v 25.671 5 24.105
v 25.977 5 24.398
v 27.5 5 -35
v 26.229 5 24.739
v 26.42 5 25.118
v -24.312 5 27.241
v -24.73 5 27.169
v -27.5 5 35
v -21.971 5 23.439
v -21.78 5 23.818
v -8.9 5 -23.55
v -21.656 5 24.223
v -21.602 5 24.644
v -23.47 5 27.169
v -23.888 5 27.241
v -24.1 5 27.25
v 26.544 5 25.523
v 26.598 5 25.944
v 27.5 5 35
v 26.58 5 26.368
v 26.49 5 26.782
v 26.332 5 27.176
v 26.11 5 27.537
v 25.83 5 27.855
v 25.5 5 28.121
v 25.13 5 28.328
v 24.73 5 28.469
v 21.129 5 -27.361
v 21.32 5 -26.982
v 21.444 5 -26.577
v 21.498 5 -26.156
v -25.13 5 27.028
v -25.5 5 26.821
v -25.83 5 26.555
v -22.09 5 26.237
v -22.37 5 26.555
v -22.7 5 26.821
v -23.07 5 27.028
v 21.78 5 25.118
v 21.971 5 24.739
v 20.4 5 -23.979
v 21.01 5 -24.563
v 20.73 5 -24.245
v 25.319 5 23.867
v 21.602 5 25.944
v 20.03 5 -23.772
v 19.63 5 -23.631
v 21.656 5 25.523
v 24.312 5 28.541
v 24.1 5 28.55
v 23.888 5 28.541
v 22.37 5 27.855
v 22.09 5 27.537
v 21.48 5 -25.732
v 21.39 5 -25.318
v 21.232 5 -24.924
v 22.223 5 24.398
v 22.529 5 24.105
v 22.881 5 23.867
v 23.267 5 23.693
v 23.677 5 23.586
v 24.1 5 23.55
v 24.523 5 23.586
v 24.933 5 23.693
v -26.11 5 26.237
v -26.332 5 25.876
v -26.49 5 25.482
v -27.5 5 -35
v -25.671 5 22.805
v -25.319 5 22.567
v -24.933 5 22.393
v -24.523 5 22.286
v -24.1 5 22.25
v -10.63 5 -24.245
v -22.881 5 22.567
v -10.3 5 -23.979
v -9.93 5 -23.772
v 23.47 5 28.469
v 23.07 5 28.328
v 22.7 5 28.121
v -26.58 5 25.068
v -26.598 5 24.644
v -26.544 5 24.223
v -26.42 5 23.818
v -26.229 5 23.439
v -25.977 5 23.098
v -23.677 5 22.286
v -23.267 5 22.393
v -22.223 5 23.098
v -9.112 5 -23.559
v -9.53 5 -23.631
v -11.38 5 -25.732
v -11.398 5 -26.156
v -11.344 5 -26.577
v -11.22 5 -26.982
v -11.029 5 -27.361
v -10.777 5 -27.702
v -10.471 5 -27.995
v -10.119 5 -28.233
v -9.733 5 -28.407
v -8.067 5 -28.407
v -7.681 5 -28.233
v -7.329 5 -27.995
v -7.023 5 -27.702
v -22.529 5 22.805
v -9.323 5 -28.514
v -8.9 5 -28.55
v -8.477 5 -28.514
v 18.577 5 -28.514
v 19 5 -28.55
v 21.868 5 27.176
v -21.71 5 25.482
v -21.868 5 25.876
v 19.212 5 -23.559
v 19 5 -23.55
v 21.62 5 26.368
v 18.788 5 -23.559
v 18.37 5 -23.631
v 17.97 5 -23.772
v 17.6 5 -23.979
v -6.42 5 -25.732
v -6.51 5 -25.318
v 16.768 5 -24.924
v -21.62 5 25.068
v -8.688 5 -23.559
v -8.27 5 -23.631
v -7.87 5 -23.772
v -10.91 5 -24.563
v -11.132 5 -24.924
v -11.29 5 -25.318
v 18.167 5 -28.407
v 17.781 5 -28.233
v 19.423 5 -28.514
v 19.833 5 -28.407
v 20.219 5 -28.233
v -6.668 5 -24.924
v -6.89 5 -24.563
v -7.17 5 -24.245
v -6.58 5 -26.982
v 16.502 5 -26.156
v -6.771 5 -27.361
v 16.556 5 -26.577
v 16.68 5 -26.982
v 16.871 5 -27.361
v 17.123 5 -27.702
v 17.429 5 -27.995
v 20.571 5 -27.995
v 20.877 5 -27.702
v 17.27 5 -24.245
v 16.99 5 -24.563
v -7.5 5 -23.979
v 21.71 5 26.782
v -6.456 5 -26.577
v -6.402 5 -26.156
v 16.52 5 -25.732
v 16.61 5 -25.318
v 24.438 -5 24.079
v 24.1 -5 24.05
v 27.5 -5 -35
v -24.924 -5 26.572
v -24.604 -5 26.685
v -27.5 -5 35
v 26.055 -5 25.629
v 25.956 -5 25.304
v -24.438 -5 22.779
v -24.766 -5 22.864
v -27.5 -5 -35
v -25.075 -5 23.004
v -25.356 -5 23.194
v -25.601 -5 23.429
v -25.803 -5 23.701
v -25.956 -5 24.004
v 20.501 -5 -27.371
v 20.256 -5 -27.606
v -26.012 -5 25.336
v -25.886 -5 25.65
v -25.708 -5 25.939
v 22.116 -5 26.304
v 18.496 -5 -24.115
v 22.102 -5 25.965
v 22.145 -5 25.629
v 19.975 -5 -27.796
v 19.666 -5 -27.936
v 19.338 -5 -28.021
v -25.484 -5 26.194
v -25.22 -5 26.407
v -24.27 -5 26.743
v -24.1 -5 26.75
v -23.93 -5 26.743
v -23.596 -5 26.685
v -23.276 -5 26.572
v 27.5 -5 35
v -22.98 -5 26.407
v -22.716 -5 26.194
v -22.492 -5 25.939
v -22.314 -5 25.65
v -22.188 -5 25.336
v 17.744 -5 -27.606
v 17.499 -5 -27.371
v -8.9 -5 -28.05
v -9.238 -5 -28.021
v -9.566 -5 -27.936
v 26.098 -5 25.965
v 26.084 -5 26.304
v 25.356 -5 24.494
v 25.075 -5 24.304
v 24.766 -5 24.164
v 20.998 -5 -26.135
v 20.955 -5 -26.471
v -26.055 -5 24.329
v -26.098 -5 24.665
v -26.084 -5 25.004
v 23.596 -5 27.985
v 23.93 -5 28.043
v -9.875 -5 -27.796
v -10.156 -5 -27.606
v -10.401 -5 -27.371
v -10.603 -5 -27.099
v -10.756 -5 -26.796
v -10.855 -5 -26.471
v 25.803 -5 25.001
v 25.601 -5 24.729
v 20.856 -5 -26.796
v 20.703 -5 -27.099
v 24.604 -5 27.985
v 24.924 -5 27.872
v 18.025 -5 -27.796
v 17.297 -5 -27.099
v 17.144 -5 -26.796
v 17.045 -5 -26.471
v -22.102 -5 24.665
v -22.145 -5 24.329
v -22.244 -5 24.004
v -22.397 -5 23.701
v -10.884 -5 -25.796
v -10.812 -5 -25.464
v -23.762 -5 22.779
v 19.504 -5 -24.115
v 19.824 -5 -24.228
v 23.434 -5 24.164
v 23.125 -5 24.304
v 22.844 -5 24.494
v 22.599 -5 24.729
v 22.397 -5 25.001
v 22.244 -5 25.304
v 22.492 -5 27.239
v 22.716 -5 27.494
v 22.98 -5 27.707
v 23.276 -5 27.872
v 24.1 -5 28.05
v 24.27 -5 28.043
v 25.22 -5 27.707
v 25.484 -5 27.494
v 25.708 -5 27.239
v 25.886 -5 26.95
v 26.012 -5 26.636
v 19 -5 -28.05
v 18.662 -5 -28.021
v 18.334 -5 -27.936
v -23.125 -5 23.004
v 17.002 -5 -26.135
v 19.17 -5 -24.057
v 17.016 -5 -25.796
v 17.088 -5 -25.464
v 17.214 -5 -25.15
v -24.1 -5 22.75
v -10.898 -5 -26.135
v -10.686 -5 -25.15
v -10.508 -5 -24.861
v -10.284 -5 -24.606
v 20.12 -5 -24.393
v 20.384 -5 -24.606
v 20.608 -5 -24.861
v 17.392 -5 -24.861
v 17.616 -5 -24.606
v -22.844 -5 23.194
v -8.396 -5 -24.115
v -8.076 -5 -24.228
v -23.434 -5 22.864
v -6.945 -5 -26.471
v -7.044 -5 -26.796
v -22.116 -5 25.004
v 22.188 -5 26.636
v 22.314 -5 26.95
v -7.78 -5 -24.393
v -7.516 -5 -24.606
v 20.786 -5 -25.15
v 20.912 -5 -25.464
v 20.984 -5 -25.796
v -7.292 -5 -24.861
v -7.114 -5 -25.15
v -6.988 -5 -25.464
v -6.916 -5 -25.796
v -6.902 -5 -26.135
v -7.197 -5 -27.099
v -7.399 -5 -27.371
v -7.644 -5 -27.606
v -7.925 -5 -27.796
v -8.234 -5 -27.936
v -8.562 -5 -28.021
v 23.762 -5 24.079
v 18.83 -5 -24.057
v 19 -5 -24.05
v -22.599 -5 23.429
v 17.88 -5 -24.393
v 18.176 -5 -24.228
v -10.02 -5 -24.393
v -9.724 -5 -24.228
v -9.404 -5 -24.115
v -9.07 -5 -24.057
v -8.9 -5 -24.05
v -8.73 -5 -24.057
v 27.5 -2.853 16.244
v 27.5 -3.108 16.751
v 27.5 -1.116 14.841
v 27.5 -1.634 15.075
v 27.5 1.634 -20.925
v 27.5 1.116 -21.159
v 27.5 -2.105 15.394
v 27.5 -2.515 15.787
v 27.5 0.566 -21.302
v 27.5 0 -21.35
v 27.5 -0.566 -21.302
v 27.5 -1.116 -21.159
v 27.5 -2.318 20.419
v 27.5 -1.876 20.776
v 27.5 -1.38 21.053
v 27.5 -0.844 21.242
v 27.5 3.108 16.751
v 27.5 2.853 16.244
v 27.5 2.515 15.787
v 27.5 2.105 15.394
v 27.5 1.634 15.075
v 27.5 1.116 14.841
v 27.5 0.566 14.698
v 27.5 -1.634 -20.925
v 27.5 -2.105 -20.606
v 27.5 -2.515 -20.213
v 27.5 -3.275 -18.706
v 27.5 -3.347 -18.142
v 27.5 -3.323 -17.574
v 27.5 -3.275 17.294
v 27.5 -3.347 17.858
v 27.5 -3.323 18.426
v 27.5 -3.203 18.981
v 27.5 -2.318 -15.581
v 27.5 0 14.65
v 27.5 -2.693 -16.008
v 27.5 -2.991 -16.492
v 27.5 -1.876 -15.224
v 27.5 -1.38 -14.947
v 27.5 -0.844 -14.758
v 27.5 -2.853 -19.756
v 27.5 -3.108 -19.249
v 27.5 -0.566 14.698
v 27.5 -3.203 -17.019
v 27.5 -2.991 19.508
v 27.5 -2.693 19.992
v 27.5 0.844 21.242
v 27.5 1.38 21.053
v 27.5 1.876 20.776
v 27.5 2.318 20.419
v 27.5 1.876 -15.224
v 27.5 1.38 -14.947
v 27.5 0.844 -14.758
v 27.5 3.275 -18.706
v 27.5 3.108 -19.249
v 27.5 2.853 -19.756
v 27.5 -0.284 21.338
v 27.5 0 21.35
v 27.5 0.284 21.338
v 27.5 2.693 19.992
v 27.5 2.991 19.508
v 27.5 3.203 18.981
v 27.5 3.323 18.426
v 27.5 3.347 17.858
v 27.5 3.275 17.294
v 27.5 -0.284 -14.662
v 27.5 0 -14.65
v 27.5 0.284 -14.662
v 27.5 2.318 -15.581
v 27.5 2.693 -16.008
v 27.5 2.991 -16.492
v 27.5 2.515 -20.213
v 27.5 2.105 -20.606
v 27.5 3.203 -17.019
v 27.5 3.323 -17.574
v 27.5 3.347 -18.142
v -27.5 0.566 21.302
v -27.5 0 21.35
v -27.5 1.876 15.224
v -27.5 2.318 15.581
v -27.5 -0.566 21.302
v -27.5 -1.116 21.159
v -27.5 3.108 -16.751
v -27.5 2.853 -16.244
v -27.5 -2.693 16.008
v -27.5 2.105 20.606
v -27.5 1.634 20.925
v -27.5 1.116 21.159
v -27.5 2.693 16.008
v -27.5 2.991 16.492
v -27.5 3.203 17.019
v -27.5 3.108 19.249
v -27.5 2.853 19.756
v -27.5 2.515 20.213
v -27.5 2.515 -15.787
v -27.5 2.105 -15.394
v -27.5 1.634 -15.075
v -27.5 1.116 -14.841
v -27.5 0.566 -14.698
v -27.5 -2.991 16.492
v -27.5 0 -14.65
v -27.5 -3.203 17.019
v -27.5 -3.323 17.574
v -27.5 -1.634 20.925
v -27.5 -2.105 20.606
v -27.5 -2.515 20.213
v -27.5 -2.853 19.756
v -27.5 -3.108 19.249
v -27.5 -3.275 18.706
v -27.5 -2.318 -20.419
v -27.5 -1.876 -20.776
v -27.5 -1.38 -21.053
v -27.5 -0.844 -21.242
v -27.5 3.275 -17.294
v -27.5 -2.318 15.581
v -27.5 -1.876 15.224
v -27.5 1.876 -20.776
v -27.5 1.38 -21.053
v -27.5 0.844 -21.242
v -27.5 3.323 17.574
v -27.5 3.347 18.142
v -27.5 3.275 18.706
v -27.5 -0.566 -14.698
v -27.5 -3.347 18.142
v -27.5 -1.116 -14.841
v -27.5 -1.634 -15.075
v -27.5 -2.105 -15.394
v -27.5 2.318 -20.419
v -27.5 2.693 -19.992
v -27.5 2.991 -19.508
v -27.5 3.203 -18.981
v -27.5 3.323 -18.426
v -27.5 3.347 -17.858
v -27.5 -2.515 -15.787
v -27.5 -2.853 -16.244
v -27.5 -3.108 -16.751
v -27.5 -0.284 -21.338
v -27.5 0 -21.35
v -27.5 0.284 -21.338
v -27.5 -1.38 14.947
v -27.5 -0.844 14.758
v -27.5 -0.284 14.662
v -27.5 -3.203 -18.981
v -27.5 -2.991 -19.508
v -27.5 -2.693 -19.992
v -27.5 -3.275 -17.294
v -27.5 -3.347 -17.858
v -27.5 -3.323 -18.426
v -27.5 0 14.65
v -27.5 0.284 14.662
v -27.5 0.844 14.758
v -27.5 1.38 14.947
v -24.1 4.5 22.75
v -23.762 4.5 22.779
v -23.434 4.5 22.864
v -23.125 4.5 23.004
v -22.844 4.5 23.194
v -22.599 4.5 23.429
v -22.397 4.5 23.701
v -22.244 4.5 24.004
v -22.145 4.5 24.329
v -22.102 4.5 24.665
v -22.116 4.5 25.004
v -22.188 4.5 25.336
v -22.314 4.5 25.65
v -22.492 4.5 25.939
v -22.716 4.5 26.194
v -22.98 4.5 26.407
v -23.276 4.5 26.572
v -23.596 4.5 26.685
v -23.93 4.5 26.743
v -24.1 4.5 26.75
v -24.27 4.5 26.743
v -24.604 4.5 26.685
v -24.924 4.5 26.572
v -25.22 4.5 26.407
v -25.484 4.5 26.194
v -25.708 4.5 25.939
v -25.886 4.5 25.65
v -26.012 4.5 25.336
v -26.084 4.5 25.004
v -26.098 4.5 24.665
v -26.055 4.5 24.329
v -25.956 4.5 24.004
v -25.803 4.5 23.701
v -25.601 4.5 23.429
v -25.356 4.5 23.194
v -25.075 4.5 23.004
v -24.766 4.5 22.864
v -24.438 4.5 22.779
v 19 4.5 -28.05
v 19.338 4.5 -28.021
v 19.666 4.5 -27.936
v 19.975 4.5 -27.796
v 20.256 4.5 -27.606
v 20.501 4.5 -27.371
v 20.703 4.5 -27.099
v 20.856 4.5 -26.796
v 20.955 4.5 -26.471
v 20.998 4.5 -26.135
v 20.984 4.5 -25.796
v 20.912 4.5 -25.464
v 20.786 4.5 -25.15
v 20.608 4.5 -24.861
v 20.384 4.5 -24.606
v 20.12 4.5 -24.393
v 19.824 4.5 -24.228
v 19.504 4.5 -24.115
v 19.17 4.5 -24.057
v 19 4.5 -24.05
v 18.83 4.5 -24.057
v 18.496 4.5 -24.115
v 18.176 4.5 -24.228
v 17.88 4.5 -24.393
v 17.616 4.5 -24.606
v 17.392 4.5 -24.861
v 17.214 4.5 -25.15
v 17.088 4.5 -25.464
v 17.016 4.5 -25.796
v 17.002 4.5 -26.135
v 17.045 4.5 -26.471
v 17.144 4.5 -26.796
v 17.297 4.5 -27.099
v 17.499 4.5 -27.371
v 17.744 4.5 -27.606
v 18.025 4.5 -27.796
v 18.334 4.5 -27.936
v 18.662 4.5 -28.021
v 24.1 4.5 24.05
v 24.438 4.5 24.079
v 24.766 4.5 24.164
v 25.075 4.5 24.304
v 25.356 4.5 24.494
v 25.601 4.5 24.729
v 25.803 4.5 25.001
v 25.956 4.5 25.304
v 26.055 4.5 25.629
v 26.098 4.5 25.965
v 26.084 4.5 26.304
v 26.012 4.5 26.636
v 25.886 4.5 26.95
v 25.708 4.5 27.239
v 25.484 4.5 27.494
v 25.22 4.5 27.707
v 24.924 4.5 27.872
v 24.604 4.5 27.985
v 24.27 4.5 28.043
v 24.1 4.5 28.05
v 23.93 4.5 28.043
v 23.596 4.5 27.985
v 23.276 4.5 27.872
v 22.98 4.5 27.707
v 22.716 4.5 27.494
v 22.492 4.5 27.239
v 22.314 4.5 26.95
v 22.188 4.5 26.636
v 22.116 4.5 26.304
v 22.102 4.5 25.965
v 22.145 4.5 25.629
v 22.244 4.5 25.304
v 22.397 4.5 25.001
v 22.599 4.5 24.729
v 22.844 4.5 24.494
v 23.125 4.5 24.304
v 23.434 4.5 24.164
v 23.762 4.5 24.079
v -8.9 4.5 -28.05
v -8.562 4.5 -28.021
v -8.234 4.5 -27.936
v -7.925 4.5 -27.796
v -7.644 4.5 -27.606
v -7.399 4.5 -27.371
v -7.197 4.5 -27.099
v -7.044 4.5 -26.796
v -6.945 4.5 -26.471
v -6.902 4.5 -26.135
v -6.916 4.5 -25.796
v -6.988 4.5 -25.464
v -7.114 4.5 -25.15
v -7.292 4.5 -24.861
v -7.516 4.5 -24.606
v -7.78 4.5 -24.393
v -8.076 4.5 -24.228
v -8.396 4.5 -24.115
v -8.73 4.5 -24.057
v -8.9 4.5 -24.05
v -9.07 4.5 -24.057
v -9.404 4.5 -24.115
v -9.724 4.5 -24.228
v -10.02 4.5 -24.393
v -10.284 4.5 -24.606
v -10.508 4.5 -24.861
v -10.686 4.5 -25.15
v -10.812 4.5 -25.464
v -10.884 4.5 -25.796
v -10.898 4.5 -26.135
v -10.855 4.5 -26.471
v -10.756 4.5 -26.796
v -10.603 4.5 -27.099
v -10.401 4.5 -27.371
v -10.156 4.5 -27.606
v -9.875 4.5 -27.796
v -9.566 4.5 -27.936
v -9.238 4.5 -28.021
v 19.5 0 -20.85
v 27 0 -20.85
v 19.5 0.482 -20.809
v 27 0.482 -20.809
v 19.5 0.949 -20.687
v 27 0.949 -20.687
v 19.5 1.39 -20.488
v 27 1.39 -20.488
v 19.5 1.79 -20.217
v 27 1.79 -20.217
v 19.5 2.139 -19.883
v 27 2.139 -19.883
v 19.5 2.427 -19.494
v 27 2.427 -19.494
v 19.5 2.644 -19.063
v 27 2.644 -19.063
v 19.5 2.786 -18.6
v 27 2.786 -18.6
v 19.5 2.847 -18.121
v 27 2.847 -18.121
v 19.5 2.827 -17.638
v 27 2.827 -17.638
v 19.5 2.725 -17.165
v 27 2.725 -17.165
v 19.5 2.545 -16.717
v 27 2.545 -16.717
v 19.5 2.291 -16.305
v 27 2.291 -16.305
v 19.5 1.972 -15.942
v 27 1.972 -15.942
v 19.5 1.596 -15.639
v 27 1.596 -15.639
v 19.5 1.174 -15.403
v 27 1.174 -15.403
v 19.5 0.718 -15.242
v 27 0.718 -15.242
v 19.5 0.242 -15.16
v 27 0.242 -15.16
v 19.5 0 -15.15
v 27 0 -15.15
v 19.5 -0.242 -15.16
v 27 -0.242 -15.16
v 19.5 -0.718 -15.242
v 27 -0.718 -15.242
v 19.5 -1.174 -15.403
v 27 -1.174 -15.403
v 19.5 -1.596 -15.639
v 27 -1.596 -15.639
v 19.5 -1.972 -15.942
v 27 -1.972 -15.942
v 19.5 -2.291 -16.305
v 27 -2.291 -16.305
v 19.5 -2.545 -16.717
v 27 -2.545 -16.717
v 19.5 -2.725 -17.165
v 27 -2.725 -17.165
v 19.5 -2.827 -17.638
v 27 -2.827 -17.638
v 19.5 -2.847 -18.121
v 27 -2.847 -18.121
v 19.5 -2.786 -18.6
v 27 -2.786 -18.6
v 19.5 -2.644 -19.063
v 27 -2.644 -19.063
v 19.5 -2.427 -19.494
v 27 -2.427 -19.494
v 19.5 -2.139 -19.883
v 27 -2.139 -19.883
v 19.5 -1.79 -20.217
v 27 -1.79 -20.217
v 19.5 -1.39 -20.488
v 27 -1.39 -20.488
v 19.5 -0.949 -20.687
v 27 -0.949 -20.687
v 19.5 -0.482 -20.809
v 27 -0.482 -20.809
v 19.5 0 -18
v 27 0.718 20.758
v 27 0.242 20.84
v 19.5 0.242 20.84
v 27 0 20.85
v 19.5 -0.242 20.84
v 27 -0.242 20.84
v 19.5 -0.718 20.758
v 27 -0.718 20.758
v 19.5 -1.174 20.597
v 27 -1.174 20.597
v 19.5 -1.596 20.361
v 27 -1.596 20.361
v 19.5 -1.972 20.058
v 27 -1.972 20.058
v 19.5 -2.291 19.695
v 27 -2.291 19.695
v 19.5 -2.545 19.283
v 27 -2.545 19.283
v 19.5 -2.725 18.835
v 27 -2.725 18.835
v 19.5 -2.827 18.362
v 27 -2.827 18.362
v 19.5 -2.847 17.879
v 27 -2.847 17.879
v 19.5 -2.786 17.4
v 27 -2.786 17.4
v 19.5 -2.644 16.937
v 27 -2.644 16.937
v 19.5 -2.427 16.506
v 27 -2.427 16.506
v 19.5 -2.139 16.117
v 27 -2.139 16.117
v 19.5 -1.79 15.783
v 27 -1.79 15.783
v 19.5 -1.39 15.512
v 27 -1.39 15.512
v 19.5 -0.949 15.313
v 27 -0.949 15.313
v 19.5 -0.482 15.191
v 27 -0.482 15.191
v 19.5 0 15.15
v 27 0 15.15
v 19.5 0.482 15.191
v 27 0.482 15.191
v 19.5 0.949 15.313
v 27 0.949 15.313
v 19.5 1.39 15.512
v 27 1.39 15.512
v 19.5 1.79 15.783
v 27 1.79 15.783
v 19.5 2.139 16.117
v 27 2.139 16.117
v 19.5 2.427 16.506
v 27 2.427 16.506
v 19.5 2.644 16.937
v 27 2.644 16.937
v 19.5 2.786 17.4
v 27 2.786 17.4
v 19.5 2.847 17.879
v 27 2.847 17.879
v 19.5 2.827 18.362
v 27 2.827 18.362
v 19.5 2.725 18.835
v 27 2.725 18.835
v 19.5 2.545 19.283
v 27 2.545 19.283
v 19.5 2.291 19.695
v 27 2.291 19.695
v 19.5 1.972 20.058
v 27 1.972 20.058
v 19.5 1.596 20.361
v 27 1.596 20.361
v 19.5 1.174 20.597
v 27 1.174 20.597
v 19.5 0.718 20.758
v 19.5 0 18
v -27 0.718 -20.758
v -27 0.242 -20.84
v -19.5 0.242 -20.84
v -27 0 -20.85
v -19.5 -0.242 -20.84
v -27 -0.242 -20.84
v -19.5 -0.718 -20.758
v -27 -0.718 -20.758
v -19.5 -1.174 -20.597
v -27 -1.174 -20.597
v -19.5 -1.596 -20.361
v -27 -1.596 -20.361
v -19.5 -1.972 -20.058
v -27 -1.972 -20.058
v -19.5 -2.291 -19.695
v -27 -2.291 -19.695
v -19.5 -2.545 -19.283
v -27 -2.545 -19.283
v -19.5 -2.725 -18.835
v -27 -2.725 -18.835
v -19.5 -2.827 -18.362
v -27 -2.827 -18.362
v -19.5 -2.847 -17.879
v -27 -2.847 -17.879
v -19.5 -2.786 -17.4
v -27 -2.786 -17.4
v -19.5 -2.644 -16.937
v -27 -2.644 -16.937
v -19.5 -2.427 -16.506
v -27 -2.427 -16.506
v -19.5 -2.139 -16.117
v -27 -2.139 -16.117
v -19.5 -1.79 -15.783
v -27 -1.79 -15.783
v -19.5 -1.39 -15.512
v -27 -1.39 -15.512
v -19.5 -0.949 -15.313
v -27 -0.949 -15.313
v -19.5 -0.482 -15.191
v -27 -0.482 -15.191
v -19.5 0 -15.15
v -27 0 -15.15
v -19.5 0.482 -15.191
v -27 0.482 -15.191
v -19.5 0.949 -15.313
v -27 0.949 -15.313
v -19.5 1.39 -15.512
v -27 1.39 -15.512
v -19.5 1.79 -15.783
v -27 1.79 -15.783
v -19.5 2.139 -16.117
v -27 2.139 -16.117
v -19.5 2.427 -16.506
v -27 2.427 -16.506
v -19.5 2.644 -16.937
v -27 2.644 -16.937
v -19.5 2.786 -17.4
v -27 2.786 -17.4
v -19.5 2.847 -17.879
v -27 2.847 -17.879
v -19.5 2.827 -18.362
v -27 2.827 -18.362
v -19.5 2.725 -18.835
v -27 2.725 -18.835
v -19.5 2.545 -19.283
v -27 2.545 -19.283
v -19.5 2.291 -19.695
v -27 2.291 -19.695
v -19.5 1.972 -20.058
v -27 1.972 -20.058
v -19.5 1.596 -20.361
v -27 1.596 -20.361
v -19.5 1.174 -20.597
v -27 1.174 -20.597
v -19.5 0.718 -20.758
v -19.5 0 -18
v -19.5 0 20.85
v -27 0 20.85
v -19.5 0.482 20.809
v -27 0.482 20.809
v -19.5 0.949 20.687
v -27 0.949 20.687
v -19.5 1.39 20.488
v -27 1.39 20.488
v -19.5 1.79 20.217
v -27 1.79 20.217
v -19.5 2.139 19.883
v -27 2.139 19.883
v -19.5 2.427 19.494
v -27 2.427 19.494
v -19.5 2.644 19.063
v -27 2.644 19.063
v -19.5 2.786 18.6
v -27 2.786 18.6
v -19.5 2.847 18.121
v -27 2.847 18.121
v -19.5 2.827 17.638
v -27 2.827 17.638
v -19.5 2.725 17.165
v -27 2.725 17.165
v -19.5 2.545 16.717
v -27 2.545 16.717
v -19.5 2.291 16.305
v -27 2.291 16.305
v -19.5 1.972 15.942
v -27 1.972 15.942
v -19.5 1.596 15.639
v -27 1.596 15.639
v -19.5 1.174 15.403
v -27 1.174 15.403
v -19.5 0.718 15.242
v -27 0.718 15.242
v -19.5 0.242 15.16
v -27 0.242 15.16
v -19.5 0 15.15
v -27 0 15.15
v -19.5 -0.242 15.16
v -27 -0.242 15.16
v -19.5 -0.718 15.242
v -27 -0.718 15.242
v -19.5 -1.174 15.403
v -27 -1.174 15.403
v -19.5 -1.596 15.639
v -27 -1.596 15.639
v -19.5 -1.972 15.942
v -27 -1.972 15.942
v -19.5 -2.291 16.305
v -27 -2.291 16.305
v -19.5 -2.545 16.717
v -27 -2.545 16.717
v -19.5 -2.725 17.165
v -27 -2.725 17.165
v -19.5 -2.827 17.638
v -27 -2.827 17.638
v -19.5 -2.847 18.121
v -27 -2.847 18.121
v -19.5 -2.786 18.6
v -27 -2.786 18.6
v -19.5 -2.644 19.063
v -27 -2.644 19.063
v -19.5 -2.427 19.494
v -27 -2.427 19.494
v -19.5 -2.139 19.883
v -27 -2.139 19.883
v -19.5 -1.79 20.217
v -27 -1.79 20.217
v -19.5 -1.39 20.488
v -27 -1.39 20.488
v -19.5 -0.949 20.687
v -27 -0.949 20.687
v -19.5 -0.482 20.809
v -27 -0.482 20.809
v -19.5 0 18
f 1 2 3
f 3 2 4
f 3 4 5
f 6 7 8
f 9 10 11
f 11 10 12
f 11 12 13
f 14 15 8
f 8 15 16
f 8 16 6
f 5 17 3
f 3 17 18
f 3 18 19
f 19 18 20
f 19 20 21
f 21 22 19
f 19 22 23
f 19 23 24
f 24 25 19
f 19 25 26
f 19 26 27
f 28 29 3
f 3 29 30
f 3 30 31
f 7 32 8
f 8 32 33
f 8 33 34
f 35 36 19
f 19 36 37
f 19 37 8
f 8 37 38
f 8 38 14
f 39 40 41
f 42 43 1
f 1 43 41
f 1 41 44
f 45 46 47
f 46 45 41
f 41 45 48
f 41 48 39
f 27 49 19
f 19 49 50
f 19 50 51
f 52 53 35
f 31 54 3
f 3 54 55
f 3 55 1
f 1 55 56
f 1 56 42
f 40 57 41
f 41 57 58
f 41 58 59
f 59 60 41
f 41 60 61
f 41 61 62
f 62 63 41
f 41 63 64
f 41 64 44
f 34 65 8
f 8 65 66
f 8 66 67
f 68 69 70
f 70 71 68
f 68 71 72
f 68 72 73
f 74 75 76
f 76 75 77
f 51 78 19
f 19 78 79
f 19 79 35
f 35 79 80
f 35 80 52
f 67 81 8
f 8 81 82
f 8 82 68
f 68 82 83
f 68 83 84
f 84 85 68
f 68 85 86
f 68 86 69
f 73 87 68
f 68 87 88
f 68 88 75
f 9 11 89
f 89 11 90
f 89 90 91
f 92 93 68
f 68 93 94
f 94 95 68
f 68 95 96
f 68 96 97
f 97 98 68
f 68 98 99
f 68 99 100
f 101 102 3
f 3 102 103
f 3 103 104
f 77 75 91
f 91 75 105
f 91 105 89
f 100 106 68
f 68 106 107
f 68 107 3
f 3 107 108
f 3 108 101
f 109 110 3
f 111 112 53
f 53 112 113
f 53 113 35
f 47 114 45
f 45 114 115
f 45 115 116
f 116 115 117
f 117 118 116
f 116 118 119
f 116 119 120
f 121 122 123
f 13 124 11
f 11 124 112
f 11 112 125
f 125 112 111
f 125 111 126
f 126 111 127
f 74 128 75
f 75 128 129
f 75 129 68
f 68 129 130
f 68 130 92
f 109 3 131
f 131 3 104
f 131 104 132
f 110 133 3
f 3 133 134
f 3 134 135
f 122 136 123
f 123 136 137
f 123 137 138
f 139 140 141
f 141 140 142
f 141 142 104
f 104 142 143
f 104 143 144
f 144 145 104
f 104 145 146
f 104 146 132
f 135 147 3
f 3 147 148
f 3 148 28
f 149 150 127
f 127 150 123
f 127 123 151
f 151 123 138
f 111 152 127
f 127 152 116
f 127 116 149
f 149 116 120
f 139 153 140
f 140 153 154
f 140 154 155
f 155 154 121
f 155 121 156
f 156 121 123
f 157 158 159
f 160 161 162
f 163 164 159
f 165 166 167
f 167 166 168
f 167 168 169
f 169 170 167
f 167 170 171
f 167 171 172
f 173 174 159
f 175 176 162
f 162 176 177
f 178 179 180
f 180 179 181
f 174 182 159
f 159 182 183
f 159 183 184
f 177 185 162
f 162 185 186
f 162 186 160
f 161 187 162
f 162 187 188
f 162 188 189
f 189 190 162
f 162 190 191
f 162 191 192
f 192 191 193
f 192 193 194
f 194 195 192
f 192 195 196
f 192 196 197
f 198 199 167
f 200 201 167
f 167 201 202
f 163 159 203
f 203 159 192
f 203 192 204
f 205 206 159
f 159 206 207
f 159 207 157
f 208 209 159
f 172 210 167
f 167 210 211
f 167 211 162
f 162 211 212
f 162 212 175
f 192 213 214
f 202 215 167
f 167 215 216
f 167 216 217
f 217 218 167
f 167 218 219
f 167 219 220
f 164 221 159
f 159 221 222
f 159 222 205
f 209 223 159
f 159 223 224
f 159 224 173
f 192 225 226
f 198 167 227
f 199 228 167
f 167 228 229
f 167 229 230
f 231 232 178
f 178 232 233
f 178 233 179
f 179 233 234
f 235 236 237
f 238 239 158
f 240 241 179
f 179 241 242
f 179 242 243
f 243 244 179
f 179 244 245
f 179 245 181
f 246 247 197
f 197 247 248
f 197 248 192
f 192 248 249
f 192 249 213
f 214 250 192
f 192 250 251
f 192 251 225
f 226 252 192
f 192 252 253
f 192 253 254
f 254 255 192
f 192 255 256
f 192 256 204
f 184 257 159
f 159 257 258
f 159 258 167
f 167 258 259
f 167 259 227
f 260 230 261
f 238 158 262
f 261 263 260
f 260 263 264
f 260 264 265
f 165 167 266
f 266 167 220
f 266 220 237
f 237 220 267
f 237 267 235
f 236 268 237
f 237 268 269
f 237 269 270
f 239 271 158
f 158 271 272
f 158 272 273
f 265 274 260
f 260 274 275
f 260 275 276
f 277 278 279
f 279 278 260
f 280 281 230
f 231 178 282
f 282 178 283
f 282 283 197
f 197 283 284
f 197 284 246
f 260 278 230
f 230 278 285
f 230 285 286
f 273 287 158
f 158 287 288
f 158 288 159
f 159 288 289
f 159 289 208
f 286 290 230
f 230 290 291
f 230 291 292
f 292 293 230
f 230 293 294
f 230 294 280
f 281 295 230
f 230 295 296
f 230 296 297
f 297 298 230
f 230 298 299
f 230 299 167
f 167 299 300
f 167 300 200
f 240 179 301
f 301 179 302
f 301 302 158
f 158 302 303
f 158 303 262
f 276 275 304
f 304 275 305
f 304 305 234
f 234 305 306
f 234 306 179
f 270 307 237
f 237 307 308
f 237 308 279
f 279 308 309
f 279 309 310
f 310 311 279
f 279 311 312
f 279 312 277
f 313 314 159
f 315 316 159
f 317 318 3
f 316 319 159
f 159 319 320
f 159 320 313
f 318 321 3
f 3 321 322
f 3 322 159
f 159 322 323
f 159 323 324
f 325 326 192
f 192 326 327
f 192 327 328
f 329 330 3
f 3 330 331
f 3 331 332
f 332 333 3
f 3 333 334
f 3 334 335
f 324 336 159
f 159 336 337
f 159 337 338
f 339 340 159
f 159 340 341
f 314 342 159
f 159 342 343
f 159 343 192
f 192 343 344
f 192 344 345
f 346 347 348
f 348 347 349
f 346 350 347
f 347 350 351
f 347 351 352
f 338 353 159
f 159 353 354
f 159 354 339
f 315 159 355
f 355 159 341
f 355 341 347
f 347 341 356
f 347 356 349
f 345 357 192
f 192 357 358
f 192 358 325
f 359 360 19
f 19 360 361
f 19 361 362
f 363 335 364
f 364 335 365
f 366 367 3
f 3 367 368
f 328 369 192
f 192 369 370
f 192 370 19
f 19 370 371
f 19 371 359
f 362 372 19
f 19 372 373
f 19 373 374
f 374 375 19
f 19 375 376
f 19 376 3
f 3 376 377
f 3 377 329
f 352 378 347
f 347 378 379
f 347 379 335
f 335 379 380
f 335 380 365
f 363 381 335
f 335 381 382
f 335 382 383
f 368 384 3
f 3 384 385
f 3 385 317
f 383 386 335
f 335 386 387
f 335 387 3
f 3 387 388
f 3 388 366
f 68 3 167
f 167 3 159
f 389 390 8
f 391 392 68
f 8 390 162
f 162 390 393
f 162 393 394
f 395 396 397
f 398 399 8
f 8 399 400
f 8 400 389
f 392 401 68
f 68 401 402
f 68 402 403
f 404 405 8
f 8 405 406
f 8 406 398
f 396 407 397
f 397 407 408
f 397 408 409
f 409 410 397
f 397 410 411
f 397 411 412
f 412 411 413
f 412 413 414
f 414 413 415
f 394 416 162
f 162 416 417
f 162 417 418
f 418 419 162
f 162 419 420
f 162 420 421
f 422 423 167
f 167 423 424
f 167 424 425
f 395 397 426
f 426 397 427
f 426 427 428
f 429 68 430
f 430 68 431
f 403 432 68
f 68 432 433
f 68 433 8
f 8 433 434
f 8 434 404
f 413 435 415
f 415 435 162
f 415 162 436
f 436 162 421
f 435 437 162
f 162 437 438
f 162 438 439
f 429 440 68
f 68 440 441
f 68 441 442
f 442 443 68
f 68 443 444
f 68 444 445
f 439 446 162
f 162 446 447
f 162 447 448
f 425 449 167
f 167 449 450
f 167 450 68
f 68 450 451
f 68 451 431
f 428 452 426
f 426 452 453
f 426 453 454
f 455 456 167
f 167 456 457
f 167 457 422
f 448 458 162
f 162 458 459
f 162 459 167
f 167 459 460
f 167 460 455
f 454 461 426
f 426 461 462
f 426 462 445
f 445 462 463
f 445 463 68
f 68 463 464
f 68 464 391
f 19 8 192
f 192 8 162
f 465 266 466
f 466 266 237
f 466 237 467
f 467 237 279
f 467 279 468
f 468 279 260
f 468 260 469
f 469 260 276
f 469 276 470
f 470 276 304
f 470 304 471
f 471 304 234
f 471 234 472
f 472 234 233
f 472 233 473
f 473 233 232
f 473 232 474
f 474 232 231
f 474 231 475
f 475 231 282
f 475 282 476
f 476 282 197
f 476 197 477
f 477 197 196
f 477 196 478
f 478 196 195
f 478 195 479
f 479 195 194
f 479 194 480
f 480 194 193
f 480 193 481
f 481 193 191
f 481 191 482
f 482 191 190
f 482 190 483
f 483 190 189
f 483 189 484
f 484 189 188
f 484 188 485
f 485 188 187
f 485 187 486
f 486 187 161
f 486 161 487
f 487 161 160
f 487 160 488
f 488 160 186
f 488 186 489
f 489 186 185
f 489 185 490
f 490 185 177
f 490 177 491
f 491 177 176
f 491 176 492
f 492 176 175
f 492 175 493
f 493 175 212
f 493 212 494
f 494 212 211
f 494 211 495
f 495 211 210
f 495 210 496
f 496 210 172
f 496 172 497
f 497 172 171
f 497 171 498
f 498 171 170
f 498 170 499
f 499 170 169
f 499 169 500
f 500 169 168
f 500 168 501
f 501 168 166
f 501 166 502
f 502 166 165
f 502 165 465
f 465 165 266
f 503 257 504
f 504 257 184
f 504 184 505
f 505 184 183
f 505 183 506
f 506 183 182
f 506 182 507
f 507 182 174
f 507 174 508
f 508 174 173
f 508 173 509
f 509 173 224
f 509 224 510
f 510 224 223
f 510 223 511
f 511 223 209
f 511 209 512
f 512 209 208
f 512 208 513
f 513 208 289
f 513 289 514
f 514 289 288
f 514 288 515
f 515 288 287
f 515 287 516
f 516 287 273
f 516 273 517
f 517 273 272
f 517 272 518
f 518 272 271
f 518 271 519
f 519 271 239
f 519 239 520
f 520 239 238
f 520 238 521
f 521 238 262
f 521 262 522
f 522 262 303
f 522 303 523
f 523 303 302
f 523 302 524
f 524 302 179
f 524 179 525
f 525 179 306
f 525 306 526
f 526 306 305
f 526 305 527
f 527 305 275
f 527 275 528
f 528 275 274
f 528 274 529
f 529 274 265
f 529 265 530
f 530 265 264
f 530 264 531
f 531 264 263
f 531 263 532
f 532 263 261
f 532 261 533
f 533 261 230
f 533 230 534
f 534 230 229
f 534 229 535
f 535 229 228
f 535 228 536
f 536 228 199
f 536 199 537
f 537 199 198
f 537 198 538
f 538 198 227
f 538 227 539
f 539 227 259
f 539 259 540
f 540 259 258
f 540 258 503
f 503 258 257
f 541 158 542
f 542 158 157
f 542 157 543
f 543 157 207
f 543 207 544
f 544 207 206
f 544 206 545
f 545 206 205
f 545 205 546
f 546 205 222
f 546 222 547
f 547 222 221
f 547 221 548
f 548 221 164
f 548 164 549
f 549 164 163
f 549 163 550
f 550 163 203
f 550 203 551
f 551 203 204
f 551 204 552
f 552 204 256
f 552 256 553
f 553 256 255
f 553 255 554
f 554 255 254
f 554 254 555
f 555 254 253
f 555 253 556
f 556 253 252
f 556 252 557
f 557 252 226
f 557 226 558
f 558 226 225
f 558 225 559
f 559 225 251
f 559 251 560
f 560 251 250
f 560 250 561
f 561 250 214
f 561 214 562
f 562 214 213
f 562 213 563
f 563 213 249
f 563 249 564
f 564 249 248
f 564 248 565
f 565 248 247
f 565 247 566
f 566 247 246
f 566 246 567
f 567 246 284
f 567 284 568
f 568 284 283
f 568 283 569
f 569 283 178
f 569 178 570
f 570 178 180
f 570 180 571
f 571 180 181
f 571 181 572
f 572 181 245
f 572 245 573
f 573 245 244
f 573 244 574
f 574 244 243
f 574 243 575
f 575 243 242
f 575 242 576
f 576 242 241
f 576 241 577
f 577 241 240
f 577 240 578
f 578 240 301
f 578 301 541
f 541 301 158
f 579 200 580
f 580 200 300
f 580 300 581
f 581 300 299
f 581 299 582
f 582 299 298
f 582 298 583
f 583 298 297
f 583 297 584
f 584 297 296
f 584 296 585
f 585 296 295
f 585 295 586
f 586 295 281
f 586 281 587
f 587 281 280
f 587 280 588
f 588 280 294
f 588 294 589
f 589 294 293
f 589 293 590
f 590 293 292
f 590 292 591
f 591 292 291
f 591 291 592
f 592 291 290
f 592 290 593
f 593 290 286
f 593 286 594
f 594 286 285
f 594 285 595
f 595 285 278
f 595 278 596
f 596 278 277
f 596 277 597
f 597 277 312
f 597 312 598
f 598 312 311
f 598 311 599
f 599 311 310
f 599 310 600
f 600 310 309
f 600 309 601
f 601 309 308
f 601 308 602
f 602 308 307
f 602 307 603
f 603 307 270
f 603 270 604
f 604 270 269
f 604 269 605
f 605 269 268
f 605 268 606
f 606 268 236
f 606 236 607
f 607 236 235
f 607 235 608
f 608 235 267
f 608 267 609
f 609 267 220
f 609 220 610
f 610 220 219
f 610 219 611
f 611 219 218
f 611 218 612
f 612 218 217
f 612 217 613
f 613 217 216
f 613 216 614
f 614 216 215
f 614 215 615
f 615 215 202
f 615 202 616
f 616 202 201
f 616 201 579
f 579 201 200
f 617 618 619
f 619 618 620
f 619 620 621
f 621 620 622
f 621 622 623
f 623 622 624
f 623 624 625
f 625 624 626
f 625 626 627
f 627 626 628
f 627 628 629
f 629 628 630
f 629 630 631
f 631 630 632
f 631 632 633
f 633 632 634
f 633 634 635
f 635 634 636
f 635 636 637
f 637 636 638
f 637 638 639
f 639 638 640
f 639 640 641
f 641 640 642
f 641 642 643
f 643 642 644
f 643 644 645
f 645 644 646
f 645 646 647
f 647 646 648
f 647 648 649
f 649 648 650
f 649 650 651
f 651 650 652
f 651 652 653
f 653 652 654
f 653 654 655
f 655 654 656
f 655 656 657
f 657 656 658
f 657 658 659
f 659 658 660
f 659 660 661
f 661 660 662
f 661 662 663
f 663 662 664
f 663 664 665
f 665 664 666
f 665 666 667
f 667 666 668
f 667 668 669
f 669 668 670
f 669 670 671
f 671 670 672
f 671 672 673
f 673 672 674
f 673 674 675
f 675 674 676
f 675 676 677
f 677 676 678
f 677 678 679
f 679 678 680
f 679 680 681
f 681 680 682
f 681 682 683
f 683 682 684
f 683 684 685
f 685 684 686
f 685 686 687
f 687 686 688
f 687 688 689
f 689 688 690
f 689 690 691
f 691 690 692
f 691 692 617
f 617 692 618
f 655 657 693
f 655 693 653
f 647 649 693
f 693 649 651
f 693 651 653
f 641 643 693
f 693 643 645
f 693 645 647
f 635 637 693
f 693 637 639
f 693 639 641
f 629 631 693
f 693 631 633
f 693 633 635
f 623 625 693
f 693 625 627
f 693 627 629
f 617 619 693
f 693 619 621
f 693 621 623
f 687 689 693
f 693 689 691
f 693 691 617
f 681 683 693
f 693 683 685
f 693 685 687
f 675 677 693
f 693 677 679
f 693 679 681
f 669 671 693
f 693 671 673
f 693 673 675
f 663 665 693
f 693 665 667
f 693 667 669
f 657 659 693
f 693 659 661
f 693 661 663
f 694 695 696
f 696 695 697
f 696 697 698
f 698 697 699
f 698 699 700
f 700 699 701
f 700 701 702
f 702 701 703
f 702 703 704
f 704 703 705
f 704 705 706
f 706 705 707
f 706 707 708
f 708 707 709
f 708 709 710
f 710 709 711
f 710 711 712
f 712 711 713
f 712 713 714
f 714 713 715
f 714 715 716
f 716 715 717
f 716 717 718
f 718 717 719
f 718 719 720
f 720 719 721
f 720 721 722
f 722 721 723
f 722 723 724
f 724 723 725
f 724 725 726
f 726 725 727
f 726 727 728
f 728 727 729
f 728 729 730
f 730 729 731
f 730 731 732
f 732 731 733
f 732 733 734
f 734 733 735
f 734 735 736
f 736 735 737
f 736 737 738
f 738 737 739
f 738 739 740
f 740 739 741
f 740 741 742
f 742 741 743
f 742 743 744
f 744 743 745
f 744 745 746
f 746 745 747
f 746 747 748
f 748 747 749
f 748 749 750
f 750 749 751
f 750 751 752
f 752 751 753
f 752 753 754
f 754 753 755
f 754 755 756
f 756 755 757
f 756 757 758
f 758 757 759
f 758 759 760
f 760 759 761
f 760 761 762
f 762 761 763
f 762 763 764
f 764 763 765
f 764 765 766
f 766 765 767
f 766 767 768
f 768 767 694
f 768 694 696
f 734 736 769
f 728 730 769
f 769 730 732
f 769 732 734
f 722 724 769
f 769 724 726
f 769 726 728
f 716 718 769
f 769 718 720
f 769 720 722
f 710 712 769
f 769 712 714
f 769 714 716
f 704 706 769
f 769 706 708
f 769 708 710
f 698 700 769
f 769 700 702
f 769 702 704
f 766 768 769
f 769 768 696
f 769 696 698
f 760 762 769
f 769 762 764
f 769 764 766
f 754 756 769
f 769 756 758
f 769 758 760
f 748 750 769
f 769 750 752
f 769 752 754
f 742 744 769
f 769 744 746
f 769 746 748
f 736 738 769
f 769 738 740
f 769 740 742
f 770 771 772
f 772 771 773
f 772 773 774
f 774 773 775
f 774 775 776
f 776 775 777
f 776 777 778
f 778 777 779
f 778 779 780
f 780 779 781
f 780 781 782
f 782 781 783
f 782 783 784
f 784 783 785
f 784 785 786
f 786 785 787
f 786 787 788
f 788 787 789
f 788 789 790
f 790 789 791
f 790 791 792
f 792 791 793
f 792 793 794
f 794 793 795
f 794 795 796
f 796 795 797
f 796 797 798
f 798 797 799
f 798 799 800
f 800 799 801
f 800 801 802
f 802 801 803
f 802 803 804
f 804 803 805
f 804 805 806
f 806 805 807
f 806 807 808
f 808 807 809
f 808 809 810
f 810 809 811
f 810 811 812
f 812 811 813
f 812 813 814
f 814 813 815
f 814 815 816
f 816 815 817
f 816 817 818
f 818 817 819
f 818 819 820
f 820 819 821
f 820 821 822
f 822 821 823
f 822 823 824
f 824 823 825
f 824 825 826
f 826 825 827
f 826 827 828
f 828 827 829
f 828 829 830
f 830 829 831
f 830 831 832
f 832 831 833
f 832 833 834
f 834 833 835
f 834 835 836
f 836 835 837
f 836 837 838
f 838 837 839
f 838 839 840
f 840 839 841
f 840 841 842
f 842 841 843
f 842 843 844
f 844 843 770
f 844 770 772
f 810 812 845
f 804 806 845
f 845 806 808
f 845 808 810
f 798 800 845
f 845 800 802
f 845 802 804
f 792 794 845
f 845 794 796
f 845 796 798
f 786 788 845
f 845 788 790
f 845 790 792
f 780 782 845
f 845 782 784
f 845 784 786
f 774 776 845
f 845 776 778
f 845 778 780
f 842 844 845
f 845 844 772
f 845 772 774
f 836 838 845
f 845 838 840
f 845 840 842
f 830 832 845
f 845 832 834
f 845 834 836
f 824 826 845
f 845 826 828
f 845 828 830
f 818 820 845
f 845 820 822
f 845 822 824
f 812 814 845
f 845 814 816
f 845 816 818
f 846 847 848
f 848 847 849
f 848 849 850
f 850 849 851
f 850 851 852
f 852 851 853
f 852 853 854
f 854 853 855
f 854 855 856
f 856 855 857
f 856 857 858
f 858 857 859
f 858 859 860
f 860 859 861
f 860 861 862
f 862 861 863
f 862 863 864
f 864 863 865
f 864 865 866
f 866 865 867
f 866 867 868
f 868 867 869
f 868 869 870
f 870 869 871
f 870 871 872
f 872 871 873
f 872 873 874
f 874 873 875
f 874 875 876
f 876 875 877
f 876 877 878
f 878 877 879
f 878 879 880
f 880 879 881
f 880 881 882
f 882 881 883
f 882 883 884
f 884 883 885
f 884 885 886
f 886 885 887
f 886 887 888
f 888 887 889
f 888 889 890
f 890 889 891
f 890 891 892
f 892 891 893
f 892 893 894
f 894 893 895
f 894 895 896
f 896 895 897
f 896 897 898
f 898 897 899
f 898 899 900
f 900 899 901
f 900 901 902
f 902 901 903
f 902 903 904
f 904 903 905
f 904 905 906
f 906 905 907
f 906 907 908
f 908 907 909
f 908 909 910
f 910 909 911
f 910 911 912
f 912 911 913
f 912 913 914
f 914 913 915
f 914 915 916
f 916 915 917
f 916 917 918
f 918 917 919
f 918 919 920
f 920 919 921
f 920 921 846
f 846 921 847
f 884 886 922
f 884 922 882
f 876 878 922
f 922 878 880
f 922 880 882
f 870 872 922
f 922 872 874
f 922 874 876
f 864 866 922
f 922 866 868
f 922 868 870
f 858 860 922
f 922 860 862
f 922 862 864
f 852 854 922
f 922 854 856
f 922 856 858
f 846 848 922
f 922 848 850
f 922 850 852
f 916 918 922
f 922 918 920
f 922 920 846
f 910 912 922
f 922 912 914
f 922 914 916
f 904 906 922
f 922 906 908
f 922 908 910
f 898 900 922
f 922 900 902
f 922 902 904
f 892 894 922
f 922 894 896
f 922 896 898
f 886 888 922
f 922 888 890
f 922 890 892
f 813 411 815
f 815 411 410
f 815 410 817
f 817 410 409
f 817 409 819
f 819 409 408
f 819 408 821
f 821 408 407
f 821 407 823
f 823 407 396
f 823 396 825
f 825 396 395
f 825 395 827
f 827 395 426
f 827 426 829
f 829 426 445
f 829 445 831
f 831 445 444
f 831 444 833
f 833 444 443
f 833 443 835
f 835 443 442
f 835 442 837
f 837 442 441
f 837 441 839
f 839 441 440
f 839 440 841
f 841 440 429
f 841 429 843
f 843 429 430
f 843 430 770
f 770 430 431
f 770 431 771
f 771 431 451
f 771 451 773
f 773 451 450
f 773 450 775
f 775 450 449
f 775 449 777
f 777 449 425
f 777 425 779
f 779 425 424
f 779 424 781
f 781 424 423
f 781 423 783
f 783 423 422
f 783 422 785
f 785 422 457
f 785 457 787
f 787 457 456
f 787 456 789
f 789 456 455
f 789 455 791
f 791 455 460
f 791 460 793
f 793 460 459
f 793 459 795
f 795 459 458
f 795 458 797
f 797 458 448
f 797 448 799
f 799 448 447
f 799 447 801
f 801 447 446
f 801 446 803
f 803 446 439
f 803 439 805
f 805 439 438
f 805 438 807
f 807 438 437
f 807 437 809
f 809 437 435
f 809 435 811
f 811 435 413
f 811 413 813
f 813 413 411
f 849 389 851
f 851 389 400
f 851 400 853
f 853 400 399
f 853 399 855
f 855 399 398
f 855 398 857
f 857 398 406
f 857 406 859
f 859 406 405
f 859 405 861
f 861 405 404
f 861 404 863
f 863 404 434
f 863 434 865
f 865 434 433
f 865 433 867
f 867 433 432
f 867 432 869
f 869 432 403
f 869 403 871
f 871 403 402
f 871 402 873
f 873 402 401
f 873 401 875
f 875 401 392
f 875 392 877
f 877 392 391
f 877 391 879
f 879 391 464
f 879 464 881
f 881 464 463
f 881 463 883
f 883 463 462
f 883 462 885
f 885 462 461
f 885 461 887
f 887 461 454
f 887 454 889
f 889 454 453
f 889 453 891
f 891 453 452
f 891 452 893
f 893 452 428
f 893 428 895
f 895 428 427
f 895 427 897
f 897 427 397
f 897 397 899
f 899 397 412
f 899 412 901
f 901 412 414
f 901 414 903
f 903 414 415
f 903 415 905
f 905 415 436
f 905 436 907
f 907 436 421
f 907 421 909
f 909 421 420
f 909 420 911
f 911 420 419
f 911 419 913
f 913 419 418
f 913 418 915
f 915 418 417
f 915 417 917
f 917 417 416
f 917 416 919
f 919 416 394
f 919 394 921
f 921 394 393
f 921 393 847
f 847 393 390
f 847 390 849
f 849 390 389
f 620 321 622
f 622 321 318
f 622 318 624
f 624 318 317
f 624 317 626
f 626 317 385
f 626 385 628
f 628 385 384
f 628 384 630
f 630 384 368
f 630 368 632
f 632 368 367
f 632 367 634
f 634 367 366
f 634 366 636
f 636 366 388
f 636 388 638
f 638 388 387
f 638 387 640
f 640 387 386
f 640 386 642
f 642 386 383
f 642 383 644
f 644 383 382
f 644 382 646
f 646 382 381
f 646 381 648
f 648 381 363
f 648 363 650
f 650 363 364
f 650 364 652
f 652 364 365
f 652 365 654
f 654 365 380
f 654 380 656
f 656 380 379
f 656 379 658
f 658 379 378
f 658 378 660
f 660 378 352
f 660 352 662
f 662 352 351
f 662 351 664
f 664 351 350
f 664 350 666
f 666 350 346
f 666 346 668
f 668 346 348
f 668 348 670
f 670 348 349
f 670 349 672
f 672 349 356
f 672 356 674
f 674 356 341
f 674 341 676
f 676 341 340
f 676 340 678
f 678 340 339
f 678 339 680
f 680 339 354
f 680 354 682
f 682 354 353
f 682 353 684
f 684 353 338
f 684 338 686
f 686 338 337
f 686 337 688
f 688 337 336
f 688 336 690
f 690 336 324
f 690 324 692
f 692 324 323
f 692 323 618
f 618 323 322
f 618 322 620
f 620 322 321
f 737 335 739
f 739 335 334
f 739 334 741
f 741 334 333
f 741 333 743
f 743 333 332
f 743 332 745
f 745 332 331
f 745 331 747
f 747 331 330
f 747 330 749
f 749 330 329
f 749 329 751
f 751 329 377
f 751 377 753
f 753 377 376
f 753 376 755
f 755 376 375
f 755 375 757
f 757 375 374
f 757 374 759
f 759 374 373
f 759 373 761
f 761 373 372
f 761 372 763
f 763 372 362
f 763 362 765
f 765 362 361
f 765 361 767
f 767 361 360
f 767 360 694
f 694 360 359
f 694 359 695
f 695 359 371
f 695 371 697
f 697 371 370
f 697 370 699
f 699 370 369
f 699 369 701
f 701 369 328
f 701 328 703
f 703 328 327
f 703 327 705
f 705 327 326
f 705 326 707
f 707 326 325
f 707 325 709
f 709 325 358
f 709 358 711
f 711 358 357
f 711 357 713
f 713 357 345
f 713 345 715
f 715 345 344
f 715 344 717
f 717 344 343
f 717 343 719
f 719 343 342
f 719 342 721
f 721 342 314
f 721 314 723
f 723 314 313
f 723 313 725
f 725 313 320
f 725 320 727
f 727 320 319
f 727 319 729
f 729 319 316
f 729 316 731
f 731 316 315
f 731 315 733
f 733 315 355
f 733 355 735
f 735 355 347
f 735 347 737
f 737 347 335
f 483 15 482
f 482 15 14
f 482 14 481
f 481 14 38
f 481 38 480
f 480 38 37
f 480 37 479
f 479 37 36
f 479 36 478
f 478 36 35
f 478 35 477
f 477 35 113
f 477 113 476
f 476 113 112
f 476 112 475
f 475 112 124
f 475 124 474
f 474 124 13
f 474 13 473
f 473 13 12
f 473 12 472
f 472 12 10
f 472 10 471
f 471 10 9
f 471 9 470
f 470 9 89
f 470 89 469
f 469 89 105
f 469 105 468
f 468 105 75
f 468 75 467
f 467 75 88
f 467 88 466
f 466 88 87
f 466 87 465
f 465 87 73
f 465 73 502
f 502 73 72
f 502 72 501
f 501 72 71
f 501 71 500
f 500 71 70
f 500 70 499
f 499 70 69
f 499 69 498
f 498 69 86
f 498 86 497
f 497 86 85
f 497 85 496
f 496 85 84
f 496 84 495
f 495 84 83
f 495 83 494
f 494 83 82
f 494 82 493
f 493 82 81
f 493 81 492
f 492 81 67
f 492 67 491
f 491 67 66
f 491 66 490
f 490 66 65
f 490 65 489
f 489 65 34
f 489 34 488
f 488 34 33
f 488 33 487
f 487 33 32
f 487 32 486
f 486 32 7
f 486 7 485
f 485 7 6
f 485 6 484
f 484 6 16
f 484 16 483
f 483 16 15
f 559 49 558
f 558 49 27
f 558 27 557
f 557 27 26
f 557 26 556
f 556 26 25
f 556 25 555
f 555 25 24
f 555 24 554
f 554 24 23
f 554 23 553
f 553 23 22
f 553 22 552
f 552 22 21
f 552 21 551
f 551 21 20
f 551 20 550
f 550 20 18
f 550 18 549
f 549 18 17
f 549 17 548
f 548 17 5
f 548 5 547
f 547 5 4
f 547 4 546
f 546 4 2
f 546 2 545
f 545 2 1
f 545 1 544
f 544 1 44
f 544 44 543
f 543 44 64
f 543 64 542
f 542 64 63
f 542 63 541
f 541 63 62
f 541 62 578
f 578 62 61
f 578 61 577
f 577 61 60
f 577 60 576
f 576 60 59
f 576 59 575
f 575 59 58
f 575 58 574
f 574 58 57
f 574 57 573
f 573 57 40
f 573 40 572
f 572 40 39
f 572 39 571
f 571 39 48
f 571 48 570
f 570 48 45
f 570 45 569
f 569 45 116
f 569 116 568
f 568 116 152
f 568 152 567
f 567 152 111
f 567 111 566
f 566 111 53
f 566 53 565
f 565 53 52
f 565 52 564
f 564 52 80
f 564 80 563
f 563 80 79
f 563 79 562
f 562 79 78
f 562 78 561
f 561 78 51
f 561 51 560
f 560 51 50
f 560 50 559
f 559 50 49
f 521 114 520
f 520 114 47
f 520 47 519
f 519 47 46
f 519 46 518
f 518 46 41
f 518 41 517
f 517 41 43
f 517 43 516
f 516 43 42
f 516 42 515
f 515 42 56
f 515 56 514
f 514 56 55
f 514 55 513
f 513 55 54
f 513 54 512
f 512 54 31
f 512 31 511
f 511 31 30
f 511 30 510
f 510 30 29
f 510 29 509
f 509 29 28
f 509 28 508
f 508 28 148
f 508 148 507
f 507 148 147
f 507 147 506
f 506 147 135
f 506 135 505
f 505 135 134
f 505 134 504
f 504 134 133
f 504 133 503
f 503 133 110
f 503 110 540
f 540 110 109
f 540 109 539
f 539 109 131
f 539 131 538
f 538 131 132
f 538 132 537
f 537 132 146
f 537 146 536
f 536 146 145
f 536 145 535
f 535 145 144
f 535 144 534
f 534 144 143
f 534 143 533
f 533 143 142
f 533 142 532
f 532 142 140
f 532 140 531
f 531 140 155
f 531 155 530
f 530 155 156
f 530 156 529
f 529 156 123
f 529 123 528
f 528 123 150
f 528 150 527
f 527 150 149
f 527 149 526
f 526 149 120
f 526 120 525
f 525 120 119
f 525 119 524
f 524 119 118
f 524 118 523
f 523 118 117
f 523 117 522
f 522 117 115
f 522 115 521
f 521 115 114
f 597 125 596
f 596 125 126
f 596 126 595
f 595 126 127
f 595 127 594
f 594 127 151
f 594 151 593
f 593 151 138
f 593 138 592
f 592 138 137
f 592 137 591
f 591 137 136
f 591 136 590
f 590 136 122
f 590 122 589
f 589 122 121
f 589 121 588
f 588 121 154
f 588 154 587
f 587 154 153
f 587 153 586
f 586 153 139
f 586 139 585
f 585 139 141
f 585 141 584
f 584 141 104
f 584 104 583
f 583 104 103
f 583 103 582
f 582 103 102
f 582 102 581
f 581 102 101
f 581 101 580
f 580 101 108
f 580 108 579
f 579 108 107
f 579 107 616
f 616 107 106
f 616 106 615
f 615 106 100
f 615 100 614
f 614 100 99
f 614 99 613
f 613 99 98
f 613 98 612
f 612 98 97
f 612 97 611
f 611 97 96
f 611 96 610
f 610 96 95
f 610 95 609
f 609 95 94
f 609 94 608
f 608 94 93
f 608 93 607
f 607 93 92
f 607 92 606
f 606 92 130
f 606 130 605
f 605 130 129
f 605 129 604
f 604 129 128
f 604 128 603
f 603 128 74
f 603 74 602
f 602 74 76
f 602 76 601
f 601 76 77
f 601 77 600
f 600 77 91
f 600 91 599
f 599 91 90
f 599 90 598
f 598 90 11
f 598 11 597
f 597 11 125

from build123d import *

# Parameters (mm, degrees)
SKETCH1_W           = 55
SKETCH1_H           = 70
SKETCH1_R           = 2
BOSS_EXTRUDE1_DEPTH = 5
SKETCH2_R           = 2.85
CUT_EXTRUDE1_DEPTH  = 8
CHAMFER1_SIZE       = 0.5


with BuildPart() as part:
    # Sketch1 → Boss-Extrude1 (new, symmetric)
    with BuildSketch(Plane(origin=(0, 0, 0), x_dir=(1, 0, 0), z_dir=(0, 1, 0))):
        Rectangle(SKETCH1_W, SKETCH1_H)
        with Locations(Location((24.1, -26.05, 0), (0, 0, 270))):
            Circle(SKETCH1_R, mode=Mode.SUBTRACT)
        with Locations(Location((-24.1, -24.75, 0), (0, 0, 270))):
            Circle(SKETCH1_R, mode=Mode.SUBTRACT)
        with Locations(Location((19, 26.05, 0), (0, 0, 270))):
            Circle(SKETCH1_R, mode=Mode.SUBTRACT)
        with Locations(Location((-8.9, 26.05, 0), (0, 0, 270))):
            Circle(SKETCH1_R, mode=Mode.SUBTRACT)
    extrude(amount=BOSS_EXTRUDE1_DEPTH, both=True)

    # Sketch2 → Cut-Extrude1 (cut)
    with BuildSketch(Plane(origin=(27.5, 0, 0), x_dir=(0, 0, -1), z_dir=(1, 0, 0))):
        with Locations((-18, 0)):
            Circle(SKETCH2_R)
        with Locations(Location((18, 0, 0), (0, 0, 180))):
            Circle(SKETCH2_R)
    cut_extrude1 = extrude(amount=-CUT_EXTRUDE1_DEPTH, mode=Mode.SUBTRACT)

    # Mirror1: Cut-Extrude1 across plane
    add(cut_extrude1.mirror(Plane(origin=(0, 0, 0), x_dir=(0, 0, 1), z_dir=(1, 0, 0))), mode=Mode.SUBTRACT)

    # Chamfer1
    chamfer1_edges = [part.edges().sort_by_distance(p)[0] for p in [
        (-24.1, 5, 22.75),
        (19, 5, -28.05),
        (24.1, 5, 24.05),
        (-8.9, 5, -28.05),
        (27.5, 0, 20.85),
        (27.5, 0, -20.85),
        (-27.5, 0, 20.85),
        (-27.5, 0, -20.85),
    ]]
    chamfer(chamfer1_edges, length=CHAMFER1_SIZE)


solid = part.part
